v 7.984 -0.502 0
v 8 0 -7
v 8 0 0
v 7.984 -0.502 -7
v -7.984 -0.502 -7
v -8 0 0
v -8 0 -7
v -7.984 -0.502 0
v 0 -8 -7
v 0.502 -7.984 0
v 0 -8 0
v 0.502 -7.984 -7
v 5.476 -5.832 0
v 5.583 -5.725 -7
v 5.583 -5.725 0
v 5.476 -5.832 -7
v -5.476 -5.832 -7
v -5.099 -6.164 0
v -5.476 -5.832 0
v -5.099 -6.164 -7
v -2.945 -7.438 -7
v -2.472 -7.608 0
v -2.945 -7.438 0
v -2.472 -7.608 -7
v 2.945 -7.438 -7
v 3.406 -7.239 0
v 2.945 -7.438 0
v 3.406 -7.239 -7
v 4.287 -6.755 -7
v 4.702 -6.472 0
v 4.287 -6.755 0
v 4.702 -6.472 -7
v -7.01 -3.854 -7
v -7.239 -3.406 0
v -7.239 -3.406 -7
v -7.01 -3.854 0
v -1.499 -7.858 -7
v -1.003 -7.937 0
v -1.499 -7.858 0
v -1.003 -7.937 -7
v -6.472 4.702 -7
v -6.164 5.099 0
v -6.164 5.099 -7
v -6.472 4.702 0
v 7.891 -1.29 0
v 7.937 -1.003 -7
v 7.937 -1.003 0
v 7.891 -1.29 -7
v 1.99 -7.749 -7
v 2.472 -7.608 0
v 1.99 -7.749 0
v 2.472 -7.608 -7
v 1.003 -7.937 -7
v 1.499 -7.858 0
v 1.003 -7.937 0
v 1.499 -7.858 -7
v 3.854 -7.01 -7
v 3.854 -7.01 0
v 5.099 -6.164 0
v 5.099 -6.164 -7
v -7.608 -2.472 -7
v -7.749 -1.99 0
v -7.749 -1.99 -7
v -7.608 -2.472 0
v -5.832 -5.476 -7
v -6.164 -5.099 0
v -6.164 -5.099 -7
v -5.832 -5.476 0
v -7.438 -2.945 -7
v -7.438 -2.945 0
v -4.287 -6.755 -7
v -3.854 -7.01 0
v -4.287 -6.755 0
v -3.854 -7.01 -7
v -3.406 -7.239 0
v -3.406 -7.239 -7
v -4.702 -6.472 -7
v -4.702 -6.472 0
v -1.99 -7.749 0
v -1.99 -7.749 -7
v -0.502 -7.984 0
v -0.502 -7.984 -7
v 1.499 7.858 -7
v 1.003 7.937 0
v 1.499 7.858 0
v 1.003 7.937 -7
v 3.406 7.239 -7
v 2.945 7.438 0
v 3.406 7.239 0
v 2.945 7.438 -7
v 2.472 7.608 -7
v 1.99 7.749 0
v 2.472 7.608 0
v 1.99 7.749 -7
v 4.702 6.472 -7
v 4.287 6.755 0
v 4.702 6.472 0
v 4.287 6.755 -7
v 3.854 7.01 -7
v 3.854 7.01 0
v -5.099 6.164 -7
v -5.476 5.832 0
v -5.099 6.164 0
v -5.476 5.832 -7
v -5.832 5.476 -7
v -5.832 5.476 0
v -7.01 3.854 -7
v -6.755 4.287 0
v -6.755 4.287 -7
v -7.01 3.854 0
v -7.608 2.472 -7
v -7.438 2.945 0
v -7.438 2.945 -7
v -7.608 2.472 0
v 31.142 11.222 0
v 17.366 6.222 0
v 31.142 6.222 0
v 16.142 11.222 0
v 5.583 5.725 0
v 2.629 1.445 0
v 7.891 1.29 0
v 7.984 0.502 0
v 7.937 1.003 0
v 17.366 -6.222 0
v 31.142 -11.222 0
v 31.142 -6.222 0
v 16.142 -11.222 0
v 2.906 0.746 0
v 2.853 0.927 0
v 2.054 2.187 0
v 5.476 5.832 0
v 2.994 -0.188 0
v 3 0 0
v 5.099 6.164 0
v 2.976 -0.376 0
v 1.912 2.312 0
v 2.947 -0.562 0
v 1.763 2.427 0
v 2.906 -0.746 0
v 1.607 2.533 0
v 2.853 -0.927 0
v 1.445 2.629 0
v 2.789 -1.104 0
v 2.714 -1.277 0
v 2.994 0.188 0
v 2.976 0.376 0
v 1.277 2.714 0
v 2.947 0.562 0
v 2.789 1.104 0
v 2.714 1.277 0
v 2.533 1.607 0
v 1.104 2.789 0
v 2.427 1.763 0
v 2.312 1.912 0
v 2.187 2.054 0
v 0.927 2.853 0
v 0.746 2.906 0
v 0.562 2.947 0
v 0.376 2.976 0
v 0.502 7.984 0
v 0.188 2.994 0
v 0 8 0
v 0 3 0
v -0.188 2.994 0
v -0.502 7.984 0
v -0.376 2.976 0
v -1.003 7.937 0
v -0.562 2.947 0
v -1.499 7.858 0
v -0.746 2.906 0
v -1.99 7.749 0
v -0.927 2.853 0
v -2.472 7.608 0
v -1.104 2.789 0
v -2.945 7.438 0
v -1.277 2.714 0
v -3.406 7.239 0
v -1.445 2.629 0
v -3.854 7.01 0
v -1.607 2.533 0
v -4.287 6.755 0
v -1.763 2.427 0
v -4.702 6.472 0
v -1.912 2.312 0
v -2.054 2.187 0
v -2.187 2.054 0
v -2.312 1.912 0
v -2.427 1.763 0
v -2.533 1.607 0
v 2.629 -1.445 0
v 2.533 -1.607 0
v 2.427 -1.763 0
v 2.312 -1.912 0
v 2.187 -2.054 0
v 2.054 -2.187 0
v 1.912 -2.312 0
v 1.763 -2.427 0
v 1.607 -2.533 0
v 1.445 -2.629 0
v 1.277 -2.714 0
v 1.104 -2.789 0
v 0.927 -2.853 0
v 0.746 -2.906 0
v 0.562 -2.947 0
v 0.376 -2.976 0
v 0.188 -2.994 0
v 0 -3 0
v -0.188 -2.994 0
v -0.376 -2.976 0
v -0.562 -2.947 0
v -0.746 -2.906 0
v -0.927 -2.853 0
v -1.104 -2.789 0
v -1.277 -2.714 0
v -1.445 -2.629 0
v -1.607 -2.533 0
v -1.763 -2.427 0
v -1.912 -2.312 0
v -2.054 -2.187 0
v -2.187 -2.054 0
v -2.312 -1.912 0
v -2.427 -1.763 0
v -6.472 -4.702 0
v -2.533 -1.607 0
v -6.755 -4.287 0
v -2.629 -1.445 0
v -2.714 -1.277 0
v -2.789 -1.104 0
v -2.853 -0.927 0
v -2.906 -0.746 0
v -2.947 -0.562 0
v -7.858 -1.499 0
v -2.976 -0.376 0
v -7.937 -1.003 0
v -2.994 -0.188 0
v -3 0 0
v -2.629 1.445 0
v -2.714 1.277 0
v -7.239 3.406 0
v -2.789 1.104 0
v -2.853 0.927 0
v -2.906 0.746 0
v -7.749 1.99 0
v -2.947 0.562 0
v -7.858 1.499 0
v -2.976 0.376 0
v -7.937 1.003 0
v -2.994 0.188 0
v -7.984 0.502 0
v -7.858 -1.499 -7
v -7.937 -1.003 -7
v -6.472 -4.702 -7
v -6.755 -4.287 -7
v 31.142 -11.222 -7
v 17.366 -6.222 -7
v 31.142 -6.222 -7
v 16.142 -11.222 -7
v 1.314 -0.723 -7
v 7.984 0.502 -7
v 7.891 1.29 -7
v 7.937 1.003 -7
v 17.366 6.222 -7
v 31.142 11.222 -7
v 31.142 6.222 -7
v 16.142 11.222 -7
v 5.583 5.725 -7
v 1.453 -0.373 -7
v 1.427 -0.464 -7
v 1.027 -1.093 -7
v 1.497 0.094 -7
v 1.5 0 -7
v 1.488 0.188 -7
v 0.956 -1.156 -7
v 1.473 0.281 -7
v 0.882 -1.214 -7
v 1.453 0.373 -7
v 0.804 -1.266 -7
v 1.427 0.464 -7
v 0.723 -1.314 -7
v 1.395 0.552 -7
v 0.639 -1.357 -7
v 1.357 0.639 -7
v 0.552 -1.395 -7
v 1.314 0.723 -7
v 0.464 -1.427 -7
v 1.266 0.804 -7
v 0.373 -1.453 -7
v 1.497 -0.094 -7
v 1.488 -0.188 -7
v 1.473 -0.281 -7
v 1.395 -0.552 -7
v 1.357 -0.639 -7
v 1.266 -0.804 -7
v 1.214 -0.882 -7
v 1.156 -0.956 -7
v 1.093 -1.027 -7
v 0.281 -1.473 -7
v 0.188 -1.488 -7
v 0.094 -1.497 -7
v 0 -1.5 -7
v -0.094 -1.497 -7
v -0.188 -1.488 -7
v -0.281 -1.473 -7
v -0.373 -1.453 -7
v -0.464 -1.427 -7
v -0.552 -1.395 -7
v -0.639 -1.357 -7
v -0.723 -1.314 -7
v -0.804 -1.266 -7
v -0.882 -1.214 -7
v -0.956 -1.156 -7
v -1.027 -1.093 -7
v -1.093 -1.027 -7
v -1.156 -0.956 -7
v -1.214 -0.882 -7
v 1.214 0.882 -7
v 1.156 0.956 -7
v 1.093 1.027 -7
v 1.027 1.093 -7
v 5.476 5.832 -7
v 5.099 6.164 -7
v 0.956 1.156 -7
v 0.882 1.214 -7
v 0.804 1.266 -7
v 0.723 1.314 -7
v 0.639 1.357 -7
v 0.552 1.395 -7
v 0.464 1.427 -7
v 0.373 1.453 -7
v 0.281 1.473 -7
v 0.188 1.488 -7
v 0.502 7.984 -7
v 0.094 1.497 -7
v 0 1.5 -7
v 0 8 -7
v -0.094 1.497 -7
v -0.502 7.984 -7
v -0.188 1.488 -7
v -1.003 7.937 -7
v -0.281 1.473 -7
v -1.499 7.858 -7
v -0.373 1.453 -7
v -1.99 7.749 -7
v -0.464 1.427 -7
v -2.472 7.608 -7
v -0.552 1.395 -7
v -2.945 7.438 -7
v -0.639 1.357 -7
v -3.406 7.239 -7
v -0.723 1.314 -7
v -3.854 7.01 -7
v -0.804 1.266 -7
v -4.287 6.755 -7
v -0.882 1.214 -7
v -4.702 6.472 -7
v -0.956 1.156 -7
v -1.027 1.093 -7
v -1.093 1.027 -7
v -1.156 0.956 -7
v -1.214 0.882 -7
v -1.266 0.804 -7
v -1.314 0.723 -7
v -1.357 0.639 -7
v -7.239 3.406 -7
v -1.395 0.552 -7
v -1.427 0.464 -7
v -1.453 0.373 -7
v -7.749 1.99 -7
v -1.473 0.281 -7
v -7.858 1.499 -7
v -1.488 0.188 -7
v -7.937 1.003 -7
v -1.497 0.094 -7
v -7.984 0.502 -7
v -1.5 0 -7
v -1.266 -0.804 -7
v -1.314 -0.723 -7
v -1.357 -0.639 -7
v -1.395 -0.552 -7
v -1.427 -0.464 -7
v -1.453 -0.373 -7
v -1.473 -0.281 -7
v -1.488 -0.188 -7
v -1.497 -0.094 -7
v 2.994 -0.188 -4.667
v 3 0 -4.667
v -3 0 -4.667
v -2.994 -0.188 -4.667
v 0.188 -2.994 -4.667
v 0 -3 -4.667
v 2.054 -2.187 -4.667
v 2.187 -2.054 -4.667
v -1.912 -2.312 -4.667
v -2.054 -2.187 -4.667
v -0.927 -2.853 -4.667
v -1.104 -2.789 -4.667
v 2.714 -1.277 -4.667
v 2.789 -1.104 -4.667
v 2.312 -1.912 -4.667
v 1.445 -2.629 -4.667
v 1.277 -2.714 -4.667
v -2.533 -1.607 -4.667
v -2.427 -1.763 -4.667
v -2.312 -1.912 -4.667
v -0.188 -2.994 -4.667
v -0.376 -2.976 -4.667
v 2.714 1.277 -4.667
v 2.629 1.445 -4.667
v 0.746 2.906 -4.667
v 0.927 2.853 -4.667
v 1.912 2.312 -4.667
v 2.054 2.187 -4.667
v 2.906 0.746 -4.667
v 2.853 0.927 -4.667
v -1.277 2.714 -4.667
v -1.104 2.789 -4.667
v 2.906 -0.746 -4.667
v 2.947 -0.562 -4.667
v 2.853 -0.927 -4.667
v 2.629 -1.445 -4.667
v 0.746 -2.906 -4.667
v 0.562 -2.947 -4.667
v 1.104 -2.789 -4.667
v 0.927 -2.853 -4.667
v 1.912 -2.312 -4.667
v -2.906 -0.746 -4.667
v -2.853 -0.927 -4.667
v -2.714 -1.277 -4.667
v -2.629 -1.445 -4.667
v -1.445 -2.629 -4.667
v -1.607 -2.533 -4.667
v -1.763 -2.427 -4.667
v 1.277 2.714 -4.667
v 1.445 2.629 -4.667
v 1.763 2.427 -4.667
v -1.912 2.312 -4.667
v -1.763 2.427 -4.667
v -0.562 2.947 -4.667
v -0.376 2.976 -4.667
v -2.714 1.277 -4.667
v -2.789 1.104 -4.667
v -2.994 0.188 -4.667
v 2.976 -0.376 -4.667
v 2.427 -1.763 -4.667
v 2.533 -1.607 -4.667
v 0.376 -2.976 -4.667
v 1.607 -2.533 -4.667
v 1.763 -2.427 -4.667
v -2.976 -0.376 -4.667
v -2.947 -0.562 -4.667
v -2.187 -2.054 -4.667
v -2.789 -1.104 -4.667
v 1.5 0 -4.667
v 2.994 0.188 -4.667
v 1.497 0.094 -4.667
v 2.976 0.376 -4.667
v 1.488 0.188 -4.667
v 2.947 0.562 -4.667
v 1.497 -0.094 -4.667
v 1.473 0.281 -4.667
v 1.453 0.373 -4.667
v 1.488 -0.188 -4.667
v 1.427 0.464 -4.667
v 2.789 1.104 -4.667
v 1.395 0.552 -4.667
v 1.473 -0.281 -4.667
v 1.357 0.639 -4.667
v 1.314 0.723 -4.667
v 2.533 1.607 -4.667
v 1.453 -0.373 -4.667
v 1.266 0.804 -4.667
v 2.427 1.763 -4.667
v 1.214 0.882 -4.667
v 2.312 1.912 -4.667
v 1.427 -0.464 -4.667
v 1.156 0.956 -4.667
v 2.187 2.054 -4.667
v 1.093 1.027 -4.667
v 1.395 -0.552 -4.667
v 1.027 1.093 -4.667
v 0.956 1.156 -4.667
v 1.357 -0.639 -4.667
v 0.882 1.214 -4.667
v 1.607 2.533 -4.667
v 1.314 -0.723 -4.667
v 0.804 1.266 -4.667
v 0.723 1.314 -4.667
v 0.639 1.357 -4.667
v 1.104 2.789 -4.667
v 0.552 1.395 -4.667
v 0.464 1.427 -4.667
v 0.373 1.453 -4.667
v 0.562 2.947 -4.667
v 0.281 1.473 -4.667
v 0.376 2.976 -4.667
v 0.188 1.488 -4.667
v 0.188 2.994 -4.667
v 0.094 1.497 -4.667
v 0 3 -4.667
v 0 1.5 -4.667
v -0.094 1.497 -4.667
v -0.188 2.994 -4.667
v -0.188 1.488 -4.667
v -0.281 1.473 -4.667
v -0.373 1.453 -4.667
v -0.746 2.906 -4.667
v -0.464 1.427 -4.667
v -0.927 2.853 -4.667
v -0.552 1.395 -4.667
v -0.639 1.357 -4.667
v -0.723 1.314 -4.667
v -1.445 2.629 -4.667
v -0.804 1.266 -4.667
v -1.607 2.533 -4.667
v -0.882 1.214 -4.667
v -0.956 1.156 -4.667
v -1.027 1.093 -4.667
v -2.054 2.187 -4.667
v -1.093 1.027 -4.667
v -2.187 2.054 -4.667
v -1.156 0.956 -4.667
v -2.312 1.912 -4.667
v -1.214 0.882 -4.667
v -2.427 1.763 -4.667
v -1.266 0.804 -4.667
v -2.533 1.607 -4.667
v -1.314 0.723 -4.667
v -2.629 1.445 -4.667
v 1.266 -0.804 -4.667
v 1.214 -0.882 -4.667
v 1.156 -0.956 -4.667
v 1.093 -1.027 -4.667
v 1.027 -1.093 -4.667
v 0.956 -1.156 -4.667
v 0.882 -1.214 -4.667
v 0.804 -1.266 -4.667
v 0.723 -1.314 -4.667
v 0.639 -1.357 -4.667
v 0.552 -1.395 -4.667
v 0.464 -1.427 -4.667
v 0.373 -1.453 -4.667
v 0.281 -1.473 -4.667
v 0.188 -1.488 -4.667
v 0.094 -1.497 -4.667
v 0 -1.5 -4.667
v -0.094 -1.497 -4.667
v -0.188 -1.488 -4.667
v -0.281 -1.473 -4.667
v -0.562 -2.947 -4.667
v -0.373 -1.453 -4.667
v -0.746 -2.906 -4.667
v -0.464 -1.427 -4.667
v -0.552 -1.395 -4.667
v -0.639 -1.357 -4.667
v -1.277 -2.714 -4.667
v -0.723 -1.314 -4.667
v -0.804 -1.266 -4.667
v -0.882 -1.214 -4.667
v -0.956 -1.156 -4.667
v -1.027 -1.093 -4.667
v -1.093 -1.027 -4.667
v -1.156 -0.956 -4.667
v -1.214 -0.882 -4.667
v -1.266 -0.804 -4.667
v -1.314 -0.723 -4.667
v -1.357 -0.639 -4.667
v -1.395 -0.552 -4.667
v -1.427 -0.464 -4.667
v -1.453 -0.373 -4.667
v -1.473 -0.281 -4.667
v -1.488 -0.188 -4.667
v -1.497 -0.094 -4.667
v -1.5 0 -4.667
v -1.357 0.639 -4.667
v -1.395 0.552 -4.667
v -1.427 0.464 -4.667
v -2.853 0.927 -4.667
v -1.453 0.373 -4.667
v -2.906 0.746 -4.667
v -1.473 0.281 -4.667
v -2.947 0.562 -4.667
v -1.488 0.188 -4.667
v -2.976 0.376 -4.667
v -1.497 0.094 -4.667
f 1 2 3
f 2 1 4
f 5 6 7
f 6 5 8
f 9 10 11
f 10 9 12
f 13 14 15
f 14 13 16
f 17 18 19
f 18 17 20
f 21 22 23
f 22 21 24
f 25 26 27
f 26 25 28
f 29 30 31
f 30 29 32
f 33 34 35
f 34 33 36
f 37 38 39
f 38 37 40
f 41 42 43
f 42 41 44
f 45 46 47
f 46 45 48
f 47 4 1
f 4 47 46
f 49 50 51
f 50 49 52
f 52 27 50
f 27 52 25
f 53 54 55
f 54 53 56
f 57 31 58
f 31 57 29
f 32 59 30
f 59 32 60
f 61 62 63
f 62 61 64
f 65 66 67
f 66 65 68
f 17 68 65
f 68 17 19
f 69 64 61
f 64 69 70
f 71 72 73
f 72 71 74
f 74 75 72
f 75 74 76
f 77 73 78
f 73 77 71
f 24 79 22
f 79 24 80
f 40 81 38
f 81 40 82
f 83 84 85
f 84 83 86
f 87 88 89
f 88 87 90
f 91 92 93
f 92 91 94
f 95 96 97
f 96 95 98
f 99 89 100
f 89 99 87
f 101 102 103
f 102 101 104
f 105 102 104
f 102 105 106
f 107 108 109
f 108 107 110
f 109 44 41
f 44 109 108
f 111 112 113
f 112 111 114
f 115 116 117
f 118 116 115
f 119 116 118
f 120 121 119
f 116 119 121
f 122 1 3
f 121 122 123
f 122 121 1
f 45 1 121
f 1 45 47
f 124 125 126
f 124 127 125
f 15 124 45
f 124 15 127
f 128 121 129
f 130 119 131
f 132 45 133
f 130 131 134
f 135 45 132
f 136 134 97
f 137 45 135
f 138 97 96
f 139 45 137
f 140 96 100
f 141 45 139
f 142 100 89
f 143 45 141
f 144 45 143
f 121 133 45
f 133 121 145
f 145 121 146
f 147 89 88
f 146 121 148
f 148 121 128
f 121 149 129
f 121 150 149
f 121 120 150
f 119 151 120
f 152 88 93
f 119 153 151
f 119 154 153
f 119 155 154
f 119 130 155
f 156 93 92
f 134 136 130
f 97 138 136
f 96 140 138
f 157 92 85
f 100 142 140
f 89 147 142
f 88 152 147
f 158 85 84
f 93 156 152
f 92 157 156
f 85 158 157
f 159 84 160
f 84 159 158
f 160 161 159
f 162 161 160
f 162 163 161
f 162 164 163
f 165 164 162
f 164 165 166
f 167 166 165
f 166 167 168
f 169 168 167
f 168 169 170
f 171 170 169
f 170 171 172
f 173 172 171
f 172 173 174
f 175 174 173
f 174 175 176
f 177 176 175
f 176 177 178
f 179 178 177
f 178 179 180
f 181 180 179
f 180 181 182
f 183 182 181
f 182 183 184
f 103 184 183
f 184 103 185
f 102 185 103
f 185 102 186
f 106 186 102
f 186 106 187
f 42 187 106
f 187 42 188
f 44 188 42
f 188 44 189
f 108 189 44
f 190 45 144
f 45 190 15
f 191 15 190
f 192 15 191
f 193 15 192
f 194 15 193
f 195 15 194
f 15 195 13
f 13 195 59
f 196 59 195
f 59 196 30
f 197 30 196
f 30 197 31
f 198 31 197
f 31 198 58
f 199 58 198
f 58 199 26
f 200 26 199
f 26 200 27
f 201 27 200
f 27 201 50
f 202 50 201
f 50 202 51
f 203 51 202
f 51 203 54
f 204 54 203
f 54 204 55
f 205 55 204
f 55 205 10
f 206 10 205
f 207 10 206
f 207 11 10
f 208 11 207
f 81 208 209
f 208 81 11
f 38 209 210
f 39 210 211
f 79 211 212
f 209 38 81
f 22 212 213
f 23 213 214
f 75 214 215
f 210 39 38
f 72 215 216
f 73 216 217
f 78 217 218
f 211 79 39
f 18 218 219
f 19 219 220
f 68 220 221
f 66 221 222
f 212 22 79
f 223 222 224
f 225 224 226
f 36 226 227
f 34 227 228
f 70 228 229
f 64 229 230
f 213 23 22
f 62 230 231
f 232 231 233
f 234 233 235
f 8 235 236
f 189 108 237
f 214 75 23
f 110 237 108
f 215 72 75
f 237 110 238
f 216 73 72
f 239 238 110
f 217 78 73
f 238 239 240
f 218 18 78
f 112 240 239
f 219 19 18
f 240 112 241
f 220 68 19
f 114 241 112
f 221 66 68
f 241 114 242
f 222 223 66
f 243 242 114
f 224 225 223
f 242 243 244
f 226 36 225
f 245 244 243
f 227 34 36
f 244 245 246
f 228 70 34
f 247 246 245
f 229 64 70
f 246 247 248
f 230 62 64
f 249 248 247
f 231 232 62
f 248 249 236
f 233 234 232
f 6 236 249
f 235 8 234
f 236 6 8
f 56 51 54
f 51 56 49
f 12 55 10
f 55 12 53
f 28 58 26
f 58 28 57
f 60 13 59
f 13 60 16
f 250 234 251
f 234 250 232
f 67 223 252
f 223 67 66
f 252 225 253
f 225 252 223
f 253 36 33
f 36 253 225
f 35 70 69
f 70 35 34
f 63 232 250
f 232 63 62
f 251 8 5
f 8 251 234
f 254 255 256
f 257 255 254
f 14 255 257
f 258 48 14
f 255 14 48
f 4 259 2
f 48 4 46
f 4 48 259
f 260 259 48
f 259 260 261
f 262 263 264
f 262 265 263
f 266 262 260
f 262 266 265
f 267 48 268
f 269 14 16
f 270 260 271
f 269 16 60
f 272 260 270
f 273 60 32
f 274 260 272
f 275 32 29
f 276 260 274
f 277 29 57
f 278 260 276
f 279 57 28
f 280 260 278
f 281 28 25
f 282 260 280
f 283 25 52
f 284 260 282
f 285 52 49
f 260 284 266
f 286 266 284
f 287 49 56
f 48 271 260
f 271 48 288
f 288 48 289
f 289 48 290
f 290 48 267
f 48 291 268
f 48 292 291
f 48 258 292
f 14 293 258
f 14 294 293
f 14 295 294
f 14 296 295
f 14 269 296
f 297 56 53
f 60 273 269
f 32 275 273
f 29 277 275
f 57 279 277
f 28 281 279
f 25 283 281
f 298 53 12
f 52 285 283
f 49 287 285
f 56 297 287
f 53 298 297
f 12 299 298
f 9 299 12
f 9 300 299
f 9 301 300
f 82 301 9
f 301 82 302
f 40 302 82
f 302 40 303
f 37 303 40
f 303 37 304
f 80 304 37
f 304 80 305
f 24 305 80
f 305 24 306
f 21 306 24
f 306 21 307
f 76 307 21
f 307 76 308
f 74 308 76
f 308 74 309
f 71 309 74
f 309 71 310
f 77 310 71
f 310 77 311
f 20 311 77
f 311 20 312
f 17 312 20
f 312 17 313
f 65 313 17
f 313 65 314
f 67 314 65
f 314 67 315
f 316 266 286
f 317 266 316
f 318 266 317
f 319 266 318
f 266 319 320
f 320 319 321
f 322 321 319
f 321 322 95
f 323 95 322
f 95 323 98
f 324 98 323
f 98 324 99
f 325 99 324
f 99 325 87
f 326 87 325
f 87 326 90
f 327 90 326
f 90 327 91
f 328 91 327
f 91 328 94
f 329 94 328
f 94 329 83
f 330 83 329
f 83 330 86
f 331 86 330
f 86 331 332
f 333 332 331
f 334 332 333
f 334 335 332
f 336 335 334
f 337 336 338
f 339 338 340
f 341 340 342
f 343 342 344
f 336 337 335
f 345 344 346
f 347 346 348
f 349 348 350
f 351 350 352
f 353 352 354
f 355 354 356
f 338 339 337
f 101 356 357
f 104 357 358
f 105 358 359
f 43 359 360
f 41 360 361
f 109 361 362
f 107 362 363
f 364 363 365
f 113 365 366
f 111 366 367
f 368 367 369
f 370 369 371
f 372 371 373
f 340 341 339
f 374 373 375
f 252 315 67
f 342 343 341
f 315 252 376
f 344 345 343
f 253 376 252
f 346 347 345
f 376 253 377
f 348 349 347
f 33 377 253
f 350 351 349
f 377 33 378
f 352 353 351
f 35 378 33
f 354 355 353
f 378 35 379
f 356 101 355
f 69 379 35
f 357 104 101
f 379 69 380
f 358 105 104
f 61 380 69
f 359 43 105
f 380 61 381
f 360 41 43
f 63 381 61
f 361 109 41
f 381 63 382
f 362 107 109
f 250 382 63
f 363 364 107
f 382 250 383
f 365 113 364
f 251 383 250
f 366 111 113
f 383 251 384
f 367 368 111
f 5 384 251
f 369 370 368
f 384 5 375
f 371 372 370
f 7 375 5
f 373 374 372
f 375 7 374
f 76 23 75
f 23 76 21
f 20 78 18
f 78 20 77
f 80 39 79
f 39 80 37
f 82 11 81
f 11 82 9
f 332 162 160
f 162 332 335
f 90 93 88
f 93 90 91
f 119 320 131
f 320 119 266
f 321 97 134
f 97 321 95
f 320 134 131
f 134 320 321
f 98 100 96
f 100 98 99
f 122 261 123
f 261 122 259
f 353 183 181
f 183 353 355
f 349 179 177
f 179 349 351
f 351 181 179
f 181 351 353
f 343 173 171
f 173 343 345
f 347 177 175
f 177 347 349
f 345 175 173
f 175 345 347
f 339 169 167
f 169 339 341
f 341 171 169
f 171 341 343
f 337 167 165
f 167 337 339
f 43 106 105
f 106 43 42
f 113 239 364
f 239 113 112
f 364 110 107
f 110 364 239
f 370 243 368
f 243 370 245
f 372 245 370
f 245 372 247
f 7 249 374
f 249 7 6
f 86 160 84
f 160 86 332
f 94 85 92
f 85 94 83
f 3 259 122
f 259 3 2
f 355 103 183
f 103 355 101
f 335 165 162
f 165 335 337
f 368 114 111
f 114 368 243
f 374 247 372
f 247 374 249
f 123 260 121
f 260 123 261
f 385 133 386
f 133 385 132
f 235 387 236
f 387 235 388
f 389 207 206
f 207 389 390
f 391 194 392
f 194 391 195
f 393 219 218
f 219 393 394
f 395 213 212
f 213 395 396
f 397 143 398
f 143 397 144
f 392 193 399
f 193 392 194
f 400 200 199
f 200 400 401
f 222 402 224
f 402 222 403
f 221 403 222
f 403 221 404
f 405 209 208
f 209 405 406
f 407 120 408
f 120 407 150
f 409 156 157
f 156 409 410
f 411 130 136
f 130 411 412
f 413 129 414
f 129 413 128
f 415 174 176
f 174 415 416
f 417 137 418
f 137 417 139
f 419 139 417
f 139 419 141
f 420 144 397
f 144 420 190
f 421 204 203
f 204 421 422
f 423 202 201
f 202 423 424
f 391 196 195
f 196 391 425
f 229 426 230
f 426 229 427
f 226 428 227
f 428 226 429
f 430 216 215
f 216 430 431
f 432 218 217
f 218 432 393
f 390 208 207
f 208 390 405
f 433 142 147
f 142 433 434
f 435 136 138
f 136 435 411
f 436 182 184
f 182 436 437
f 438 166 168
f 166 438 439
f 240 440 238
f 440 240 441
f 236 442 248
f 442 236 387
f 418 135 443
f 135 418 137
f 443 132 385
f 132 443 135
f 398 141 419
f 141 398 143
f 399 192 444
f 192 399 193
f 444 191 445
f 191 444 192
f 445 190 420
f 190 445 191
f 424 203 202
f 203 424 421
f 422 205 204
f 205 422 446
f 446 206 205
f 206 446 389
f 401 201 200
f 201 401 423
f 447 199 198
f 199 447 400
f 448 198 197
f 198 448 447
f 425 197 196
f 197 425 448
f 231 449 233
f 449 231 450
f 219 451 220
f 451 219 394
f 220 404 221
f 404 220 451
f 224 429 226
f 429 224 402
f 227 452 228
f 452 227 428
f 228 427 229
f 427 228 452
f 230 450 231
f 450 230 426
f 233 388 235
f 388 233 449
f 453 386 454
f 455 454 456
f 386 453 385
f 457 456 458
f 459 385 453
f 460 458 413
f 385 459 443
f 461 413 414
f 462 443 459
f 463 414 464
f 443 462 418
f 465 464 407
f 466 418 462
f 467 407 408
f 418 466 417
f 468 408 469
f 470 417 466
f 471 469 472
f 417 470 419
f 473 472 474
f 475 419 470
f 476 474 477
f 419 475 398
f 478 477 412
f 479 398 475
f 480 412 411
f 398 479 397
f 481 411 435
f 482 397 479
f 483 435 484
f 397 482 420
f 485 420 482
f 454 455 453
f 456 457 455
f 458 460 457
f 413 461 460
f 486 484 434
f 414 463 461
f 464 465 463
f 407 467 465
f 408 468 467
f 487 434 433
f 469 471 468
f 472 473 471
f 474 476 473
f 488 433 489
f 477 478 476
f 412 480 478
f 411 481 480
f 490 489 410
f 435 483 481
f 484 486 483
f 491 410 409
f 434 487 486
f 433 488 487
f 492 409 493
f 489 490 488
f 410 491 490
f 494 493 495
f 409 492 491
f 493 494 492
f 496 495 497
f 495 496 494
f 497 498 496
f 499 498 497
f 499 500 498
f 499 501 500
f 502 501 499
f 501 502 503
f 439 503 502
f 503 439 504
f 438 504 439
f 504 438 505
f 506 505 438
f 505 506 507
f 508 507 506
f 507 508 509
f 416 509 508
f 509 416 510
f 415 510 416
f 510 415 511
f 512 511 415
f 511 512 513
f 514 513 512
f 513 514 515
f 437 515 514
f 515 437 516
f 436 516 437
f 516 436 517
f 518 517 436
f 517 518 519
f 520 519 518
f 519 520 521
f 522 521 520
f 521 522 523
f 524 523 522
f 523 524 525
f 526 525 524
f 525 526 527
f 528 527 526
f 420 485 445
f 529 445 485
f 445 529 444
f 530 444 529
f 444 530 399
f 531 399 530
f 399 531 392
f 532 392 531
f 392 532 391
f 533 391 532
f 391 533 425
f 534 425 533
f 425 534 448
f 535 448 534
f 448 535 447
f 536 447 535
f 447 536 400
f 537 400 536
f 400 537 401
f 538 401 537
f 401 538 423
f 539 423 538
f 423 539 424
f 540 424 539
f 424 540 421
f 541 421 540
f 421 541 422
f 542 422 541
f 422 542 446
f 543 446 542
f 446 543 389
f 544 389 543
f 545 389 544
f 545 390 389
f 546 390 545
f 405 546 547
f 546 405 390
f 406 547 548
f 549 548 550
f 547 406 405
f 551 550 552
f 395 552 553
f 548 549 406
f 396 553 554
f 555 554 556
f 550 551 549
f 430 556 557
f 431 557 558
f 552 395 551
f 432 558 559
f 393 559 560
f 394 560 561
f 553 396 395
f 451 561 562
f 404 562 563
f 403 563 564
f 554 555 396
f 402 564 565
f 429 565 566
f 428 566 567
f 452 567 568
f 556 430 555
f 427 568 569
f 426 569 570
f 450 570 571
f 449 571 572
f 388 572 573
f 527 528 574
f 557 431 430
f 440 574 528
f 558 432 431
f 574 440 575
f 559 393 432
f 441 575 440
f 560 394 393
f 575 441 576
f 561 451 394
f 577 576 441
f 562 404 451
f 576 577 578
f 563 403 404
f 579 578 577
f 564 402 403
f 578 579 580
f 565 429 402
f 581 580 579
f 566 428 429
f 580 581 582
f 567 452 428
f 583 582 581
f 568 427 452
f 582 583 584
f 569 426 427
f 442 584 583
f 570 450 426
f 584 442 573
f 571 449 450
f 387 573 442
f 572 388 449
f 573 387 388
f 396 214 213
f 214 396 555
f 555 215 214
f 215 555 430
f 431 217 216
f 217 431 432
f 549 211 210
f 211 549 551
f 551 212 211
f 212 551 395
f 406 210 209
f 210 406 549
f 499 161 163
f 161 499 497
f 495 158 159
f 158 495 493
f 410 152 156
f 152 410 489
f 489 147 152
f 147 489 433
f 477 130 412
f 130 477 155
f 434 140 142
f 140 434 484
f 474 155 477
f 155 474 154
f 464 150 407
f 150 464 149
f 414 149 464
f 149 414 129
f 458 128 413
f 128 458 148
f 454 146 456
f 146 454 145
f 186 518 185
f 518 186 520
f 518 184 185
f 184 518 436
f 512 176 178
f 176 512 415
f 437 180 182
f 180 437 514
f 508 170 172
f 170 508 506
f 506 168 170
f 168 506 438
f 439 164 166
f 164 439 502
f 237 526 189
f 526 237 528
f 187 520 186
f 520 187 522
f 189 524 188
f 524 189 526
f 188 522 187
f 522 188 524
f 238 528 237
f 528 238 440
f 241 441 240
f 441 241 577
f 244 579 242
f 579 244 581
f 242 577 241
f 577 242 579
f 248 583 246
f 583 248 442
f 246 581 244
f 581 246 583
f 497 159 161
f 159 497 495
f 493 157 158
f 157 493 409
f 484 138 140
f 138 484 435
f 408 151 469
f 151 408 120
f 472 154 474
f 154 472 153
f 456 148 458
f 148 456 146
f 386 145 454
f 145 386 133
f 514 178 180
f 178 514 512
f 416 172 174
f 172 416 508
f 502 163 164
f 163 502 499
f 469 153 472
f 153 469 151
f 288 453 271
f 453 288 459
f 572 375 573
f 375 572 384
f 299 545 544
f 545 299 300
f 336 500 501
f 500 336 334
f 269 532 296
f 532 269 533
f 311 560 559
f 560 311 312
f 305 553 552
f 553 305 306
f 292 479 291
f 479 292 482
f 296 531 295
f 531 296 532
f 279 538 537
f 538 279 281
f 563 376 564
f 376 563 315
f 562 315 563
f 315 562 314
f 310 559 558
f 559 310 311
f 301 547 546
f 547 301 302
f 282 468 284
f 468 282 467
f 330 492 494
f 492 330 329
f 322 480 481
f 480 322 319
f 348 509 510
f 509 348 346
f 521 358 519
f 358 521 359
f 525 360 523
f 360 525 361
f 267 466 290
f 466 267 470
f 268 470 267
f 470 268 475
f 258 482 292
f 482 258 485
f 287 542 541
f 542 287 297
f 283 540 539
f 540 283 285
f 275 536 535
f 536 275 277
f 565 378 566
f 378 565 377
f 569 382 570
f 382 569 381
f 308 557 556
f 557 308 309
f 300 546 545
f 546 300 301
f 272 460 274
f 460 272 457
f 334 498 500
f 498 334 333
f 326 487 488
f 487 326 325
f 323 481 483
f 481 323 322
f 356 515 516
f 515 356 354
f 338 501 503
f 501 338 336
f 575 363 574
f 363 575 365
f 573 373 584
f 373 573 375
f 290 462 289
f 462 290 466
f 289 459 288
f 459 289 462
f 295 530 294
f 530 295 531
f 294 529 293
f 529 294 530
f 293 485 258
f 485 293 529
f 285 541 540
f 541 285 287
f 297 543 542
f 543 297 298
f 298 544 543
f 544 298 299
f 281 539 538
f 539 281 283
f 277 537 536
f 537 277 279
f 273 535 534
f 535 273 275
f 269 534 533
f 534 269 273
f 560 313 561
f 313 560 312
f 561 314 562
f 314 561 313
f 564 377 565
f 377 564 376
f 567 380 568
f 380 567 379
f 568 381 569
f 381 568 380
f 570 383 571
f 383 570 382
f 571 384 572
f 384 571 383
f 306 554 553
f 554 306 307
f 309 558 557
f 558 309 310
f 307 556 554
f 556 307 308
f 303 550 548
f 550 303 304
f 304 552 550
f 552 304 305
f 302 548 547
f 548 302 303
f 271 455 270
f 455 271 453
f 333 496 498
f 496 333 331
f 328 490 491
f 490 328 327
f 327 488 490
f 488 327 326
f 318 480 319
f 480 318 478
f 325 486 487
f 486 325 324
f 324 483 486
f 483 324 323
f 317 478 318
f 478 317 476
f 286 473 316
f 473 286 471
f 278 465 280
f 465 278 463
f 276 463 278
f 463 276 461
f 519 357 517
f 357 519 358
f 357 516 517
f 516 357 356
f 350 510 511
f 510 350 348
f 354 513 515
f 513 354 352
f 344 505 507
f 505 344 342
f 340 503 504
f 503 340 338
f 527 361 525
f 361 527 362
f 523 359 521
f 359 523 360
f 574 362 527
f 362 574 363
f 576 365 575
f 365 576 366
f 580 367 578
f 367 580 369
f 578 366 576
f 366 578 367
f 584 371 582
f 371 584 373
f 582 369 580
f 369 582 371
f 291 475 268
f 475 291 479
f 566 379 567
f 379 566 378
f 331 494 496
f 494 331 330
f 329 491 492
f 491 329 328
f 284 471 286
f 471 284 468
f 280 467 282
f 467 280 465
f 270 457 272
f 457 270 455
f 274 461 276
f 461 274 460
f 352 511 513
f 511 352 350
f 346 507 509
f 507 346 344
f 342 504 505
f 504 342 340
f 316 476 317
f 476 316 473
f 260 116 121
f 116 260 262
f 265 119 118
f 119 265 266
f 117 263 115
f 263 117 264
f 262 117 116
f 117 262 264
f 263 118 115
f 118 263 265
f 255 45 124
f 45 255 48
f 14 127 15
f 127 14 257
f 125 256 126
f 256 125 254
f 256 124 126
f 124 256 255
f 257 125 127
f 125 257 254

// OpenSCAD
servoInnerDiameter = 6;
extensionLength = 11.0;
screwDiameter = 3;
barWidth = 5;
barAngle = 55;
armLength = 15;
componentHeight = 7;
$fn = 100;

module servoMount(){
    difference(){
        cylinder(d=servoInnerDiameter+10, h=componentHeight);
        cylinder(d=servoInnerDiameter, h=componentHeight/1.5);
        cylinder(d=screwDiameter, h=componentHeight);
    }
}
module armBase(){
    rotate([0,0,-barAngle/2])translate([(servoInnerDiameter+1)/2,-barWidth/2,0]) union(){
    cube([extensionLength+5, barWidth, componentHeight]);
        translate([extensionLength+5,0,0])rotate([0,0,barAngle/2])cube([armLength, barWidth, componentHeight]);
    }
}
module arms(armType=0){
   union(){
       armBase();
       mirror([0,1,0])armBase();
   }
}
module drawAll(){
    union(){
        servoMount();
        arms();

    }
}
rotate([180,0,0])
drawAll();
